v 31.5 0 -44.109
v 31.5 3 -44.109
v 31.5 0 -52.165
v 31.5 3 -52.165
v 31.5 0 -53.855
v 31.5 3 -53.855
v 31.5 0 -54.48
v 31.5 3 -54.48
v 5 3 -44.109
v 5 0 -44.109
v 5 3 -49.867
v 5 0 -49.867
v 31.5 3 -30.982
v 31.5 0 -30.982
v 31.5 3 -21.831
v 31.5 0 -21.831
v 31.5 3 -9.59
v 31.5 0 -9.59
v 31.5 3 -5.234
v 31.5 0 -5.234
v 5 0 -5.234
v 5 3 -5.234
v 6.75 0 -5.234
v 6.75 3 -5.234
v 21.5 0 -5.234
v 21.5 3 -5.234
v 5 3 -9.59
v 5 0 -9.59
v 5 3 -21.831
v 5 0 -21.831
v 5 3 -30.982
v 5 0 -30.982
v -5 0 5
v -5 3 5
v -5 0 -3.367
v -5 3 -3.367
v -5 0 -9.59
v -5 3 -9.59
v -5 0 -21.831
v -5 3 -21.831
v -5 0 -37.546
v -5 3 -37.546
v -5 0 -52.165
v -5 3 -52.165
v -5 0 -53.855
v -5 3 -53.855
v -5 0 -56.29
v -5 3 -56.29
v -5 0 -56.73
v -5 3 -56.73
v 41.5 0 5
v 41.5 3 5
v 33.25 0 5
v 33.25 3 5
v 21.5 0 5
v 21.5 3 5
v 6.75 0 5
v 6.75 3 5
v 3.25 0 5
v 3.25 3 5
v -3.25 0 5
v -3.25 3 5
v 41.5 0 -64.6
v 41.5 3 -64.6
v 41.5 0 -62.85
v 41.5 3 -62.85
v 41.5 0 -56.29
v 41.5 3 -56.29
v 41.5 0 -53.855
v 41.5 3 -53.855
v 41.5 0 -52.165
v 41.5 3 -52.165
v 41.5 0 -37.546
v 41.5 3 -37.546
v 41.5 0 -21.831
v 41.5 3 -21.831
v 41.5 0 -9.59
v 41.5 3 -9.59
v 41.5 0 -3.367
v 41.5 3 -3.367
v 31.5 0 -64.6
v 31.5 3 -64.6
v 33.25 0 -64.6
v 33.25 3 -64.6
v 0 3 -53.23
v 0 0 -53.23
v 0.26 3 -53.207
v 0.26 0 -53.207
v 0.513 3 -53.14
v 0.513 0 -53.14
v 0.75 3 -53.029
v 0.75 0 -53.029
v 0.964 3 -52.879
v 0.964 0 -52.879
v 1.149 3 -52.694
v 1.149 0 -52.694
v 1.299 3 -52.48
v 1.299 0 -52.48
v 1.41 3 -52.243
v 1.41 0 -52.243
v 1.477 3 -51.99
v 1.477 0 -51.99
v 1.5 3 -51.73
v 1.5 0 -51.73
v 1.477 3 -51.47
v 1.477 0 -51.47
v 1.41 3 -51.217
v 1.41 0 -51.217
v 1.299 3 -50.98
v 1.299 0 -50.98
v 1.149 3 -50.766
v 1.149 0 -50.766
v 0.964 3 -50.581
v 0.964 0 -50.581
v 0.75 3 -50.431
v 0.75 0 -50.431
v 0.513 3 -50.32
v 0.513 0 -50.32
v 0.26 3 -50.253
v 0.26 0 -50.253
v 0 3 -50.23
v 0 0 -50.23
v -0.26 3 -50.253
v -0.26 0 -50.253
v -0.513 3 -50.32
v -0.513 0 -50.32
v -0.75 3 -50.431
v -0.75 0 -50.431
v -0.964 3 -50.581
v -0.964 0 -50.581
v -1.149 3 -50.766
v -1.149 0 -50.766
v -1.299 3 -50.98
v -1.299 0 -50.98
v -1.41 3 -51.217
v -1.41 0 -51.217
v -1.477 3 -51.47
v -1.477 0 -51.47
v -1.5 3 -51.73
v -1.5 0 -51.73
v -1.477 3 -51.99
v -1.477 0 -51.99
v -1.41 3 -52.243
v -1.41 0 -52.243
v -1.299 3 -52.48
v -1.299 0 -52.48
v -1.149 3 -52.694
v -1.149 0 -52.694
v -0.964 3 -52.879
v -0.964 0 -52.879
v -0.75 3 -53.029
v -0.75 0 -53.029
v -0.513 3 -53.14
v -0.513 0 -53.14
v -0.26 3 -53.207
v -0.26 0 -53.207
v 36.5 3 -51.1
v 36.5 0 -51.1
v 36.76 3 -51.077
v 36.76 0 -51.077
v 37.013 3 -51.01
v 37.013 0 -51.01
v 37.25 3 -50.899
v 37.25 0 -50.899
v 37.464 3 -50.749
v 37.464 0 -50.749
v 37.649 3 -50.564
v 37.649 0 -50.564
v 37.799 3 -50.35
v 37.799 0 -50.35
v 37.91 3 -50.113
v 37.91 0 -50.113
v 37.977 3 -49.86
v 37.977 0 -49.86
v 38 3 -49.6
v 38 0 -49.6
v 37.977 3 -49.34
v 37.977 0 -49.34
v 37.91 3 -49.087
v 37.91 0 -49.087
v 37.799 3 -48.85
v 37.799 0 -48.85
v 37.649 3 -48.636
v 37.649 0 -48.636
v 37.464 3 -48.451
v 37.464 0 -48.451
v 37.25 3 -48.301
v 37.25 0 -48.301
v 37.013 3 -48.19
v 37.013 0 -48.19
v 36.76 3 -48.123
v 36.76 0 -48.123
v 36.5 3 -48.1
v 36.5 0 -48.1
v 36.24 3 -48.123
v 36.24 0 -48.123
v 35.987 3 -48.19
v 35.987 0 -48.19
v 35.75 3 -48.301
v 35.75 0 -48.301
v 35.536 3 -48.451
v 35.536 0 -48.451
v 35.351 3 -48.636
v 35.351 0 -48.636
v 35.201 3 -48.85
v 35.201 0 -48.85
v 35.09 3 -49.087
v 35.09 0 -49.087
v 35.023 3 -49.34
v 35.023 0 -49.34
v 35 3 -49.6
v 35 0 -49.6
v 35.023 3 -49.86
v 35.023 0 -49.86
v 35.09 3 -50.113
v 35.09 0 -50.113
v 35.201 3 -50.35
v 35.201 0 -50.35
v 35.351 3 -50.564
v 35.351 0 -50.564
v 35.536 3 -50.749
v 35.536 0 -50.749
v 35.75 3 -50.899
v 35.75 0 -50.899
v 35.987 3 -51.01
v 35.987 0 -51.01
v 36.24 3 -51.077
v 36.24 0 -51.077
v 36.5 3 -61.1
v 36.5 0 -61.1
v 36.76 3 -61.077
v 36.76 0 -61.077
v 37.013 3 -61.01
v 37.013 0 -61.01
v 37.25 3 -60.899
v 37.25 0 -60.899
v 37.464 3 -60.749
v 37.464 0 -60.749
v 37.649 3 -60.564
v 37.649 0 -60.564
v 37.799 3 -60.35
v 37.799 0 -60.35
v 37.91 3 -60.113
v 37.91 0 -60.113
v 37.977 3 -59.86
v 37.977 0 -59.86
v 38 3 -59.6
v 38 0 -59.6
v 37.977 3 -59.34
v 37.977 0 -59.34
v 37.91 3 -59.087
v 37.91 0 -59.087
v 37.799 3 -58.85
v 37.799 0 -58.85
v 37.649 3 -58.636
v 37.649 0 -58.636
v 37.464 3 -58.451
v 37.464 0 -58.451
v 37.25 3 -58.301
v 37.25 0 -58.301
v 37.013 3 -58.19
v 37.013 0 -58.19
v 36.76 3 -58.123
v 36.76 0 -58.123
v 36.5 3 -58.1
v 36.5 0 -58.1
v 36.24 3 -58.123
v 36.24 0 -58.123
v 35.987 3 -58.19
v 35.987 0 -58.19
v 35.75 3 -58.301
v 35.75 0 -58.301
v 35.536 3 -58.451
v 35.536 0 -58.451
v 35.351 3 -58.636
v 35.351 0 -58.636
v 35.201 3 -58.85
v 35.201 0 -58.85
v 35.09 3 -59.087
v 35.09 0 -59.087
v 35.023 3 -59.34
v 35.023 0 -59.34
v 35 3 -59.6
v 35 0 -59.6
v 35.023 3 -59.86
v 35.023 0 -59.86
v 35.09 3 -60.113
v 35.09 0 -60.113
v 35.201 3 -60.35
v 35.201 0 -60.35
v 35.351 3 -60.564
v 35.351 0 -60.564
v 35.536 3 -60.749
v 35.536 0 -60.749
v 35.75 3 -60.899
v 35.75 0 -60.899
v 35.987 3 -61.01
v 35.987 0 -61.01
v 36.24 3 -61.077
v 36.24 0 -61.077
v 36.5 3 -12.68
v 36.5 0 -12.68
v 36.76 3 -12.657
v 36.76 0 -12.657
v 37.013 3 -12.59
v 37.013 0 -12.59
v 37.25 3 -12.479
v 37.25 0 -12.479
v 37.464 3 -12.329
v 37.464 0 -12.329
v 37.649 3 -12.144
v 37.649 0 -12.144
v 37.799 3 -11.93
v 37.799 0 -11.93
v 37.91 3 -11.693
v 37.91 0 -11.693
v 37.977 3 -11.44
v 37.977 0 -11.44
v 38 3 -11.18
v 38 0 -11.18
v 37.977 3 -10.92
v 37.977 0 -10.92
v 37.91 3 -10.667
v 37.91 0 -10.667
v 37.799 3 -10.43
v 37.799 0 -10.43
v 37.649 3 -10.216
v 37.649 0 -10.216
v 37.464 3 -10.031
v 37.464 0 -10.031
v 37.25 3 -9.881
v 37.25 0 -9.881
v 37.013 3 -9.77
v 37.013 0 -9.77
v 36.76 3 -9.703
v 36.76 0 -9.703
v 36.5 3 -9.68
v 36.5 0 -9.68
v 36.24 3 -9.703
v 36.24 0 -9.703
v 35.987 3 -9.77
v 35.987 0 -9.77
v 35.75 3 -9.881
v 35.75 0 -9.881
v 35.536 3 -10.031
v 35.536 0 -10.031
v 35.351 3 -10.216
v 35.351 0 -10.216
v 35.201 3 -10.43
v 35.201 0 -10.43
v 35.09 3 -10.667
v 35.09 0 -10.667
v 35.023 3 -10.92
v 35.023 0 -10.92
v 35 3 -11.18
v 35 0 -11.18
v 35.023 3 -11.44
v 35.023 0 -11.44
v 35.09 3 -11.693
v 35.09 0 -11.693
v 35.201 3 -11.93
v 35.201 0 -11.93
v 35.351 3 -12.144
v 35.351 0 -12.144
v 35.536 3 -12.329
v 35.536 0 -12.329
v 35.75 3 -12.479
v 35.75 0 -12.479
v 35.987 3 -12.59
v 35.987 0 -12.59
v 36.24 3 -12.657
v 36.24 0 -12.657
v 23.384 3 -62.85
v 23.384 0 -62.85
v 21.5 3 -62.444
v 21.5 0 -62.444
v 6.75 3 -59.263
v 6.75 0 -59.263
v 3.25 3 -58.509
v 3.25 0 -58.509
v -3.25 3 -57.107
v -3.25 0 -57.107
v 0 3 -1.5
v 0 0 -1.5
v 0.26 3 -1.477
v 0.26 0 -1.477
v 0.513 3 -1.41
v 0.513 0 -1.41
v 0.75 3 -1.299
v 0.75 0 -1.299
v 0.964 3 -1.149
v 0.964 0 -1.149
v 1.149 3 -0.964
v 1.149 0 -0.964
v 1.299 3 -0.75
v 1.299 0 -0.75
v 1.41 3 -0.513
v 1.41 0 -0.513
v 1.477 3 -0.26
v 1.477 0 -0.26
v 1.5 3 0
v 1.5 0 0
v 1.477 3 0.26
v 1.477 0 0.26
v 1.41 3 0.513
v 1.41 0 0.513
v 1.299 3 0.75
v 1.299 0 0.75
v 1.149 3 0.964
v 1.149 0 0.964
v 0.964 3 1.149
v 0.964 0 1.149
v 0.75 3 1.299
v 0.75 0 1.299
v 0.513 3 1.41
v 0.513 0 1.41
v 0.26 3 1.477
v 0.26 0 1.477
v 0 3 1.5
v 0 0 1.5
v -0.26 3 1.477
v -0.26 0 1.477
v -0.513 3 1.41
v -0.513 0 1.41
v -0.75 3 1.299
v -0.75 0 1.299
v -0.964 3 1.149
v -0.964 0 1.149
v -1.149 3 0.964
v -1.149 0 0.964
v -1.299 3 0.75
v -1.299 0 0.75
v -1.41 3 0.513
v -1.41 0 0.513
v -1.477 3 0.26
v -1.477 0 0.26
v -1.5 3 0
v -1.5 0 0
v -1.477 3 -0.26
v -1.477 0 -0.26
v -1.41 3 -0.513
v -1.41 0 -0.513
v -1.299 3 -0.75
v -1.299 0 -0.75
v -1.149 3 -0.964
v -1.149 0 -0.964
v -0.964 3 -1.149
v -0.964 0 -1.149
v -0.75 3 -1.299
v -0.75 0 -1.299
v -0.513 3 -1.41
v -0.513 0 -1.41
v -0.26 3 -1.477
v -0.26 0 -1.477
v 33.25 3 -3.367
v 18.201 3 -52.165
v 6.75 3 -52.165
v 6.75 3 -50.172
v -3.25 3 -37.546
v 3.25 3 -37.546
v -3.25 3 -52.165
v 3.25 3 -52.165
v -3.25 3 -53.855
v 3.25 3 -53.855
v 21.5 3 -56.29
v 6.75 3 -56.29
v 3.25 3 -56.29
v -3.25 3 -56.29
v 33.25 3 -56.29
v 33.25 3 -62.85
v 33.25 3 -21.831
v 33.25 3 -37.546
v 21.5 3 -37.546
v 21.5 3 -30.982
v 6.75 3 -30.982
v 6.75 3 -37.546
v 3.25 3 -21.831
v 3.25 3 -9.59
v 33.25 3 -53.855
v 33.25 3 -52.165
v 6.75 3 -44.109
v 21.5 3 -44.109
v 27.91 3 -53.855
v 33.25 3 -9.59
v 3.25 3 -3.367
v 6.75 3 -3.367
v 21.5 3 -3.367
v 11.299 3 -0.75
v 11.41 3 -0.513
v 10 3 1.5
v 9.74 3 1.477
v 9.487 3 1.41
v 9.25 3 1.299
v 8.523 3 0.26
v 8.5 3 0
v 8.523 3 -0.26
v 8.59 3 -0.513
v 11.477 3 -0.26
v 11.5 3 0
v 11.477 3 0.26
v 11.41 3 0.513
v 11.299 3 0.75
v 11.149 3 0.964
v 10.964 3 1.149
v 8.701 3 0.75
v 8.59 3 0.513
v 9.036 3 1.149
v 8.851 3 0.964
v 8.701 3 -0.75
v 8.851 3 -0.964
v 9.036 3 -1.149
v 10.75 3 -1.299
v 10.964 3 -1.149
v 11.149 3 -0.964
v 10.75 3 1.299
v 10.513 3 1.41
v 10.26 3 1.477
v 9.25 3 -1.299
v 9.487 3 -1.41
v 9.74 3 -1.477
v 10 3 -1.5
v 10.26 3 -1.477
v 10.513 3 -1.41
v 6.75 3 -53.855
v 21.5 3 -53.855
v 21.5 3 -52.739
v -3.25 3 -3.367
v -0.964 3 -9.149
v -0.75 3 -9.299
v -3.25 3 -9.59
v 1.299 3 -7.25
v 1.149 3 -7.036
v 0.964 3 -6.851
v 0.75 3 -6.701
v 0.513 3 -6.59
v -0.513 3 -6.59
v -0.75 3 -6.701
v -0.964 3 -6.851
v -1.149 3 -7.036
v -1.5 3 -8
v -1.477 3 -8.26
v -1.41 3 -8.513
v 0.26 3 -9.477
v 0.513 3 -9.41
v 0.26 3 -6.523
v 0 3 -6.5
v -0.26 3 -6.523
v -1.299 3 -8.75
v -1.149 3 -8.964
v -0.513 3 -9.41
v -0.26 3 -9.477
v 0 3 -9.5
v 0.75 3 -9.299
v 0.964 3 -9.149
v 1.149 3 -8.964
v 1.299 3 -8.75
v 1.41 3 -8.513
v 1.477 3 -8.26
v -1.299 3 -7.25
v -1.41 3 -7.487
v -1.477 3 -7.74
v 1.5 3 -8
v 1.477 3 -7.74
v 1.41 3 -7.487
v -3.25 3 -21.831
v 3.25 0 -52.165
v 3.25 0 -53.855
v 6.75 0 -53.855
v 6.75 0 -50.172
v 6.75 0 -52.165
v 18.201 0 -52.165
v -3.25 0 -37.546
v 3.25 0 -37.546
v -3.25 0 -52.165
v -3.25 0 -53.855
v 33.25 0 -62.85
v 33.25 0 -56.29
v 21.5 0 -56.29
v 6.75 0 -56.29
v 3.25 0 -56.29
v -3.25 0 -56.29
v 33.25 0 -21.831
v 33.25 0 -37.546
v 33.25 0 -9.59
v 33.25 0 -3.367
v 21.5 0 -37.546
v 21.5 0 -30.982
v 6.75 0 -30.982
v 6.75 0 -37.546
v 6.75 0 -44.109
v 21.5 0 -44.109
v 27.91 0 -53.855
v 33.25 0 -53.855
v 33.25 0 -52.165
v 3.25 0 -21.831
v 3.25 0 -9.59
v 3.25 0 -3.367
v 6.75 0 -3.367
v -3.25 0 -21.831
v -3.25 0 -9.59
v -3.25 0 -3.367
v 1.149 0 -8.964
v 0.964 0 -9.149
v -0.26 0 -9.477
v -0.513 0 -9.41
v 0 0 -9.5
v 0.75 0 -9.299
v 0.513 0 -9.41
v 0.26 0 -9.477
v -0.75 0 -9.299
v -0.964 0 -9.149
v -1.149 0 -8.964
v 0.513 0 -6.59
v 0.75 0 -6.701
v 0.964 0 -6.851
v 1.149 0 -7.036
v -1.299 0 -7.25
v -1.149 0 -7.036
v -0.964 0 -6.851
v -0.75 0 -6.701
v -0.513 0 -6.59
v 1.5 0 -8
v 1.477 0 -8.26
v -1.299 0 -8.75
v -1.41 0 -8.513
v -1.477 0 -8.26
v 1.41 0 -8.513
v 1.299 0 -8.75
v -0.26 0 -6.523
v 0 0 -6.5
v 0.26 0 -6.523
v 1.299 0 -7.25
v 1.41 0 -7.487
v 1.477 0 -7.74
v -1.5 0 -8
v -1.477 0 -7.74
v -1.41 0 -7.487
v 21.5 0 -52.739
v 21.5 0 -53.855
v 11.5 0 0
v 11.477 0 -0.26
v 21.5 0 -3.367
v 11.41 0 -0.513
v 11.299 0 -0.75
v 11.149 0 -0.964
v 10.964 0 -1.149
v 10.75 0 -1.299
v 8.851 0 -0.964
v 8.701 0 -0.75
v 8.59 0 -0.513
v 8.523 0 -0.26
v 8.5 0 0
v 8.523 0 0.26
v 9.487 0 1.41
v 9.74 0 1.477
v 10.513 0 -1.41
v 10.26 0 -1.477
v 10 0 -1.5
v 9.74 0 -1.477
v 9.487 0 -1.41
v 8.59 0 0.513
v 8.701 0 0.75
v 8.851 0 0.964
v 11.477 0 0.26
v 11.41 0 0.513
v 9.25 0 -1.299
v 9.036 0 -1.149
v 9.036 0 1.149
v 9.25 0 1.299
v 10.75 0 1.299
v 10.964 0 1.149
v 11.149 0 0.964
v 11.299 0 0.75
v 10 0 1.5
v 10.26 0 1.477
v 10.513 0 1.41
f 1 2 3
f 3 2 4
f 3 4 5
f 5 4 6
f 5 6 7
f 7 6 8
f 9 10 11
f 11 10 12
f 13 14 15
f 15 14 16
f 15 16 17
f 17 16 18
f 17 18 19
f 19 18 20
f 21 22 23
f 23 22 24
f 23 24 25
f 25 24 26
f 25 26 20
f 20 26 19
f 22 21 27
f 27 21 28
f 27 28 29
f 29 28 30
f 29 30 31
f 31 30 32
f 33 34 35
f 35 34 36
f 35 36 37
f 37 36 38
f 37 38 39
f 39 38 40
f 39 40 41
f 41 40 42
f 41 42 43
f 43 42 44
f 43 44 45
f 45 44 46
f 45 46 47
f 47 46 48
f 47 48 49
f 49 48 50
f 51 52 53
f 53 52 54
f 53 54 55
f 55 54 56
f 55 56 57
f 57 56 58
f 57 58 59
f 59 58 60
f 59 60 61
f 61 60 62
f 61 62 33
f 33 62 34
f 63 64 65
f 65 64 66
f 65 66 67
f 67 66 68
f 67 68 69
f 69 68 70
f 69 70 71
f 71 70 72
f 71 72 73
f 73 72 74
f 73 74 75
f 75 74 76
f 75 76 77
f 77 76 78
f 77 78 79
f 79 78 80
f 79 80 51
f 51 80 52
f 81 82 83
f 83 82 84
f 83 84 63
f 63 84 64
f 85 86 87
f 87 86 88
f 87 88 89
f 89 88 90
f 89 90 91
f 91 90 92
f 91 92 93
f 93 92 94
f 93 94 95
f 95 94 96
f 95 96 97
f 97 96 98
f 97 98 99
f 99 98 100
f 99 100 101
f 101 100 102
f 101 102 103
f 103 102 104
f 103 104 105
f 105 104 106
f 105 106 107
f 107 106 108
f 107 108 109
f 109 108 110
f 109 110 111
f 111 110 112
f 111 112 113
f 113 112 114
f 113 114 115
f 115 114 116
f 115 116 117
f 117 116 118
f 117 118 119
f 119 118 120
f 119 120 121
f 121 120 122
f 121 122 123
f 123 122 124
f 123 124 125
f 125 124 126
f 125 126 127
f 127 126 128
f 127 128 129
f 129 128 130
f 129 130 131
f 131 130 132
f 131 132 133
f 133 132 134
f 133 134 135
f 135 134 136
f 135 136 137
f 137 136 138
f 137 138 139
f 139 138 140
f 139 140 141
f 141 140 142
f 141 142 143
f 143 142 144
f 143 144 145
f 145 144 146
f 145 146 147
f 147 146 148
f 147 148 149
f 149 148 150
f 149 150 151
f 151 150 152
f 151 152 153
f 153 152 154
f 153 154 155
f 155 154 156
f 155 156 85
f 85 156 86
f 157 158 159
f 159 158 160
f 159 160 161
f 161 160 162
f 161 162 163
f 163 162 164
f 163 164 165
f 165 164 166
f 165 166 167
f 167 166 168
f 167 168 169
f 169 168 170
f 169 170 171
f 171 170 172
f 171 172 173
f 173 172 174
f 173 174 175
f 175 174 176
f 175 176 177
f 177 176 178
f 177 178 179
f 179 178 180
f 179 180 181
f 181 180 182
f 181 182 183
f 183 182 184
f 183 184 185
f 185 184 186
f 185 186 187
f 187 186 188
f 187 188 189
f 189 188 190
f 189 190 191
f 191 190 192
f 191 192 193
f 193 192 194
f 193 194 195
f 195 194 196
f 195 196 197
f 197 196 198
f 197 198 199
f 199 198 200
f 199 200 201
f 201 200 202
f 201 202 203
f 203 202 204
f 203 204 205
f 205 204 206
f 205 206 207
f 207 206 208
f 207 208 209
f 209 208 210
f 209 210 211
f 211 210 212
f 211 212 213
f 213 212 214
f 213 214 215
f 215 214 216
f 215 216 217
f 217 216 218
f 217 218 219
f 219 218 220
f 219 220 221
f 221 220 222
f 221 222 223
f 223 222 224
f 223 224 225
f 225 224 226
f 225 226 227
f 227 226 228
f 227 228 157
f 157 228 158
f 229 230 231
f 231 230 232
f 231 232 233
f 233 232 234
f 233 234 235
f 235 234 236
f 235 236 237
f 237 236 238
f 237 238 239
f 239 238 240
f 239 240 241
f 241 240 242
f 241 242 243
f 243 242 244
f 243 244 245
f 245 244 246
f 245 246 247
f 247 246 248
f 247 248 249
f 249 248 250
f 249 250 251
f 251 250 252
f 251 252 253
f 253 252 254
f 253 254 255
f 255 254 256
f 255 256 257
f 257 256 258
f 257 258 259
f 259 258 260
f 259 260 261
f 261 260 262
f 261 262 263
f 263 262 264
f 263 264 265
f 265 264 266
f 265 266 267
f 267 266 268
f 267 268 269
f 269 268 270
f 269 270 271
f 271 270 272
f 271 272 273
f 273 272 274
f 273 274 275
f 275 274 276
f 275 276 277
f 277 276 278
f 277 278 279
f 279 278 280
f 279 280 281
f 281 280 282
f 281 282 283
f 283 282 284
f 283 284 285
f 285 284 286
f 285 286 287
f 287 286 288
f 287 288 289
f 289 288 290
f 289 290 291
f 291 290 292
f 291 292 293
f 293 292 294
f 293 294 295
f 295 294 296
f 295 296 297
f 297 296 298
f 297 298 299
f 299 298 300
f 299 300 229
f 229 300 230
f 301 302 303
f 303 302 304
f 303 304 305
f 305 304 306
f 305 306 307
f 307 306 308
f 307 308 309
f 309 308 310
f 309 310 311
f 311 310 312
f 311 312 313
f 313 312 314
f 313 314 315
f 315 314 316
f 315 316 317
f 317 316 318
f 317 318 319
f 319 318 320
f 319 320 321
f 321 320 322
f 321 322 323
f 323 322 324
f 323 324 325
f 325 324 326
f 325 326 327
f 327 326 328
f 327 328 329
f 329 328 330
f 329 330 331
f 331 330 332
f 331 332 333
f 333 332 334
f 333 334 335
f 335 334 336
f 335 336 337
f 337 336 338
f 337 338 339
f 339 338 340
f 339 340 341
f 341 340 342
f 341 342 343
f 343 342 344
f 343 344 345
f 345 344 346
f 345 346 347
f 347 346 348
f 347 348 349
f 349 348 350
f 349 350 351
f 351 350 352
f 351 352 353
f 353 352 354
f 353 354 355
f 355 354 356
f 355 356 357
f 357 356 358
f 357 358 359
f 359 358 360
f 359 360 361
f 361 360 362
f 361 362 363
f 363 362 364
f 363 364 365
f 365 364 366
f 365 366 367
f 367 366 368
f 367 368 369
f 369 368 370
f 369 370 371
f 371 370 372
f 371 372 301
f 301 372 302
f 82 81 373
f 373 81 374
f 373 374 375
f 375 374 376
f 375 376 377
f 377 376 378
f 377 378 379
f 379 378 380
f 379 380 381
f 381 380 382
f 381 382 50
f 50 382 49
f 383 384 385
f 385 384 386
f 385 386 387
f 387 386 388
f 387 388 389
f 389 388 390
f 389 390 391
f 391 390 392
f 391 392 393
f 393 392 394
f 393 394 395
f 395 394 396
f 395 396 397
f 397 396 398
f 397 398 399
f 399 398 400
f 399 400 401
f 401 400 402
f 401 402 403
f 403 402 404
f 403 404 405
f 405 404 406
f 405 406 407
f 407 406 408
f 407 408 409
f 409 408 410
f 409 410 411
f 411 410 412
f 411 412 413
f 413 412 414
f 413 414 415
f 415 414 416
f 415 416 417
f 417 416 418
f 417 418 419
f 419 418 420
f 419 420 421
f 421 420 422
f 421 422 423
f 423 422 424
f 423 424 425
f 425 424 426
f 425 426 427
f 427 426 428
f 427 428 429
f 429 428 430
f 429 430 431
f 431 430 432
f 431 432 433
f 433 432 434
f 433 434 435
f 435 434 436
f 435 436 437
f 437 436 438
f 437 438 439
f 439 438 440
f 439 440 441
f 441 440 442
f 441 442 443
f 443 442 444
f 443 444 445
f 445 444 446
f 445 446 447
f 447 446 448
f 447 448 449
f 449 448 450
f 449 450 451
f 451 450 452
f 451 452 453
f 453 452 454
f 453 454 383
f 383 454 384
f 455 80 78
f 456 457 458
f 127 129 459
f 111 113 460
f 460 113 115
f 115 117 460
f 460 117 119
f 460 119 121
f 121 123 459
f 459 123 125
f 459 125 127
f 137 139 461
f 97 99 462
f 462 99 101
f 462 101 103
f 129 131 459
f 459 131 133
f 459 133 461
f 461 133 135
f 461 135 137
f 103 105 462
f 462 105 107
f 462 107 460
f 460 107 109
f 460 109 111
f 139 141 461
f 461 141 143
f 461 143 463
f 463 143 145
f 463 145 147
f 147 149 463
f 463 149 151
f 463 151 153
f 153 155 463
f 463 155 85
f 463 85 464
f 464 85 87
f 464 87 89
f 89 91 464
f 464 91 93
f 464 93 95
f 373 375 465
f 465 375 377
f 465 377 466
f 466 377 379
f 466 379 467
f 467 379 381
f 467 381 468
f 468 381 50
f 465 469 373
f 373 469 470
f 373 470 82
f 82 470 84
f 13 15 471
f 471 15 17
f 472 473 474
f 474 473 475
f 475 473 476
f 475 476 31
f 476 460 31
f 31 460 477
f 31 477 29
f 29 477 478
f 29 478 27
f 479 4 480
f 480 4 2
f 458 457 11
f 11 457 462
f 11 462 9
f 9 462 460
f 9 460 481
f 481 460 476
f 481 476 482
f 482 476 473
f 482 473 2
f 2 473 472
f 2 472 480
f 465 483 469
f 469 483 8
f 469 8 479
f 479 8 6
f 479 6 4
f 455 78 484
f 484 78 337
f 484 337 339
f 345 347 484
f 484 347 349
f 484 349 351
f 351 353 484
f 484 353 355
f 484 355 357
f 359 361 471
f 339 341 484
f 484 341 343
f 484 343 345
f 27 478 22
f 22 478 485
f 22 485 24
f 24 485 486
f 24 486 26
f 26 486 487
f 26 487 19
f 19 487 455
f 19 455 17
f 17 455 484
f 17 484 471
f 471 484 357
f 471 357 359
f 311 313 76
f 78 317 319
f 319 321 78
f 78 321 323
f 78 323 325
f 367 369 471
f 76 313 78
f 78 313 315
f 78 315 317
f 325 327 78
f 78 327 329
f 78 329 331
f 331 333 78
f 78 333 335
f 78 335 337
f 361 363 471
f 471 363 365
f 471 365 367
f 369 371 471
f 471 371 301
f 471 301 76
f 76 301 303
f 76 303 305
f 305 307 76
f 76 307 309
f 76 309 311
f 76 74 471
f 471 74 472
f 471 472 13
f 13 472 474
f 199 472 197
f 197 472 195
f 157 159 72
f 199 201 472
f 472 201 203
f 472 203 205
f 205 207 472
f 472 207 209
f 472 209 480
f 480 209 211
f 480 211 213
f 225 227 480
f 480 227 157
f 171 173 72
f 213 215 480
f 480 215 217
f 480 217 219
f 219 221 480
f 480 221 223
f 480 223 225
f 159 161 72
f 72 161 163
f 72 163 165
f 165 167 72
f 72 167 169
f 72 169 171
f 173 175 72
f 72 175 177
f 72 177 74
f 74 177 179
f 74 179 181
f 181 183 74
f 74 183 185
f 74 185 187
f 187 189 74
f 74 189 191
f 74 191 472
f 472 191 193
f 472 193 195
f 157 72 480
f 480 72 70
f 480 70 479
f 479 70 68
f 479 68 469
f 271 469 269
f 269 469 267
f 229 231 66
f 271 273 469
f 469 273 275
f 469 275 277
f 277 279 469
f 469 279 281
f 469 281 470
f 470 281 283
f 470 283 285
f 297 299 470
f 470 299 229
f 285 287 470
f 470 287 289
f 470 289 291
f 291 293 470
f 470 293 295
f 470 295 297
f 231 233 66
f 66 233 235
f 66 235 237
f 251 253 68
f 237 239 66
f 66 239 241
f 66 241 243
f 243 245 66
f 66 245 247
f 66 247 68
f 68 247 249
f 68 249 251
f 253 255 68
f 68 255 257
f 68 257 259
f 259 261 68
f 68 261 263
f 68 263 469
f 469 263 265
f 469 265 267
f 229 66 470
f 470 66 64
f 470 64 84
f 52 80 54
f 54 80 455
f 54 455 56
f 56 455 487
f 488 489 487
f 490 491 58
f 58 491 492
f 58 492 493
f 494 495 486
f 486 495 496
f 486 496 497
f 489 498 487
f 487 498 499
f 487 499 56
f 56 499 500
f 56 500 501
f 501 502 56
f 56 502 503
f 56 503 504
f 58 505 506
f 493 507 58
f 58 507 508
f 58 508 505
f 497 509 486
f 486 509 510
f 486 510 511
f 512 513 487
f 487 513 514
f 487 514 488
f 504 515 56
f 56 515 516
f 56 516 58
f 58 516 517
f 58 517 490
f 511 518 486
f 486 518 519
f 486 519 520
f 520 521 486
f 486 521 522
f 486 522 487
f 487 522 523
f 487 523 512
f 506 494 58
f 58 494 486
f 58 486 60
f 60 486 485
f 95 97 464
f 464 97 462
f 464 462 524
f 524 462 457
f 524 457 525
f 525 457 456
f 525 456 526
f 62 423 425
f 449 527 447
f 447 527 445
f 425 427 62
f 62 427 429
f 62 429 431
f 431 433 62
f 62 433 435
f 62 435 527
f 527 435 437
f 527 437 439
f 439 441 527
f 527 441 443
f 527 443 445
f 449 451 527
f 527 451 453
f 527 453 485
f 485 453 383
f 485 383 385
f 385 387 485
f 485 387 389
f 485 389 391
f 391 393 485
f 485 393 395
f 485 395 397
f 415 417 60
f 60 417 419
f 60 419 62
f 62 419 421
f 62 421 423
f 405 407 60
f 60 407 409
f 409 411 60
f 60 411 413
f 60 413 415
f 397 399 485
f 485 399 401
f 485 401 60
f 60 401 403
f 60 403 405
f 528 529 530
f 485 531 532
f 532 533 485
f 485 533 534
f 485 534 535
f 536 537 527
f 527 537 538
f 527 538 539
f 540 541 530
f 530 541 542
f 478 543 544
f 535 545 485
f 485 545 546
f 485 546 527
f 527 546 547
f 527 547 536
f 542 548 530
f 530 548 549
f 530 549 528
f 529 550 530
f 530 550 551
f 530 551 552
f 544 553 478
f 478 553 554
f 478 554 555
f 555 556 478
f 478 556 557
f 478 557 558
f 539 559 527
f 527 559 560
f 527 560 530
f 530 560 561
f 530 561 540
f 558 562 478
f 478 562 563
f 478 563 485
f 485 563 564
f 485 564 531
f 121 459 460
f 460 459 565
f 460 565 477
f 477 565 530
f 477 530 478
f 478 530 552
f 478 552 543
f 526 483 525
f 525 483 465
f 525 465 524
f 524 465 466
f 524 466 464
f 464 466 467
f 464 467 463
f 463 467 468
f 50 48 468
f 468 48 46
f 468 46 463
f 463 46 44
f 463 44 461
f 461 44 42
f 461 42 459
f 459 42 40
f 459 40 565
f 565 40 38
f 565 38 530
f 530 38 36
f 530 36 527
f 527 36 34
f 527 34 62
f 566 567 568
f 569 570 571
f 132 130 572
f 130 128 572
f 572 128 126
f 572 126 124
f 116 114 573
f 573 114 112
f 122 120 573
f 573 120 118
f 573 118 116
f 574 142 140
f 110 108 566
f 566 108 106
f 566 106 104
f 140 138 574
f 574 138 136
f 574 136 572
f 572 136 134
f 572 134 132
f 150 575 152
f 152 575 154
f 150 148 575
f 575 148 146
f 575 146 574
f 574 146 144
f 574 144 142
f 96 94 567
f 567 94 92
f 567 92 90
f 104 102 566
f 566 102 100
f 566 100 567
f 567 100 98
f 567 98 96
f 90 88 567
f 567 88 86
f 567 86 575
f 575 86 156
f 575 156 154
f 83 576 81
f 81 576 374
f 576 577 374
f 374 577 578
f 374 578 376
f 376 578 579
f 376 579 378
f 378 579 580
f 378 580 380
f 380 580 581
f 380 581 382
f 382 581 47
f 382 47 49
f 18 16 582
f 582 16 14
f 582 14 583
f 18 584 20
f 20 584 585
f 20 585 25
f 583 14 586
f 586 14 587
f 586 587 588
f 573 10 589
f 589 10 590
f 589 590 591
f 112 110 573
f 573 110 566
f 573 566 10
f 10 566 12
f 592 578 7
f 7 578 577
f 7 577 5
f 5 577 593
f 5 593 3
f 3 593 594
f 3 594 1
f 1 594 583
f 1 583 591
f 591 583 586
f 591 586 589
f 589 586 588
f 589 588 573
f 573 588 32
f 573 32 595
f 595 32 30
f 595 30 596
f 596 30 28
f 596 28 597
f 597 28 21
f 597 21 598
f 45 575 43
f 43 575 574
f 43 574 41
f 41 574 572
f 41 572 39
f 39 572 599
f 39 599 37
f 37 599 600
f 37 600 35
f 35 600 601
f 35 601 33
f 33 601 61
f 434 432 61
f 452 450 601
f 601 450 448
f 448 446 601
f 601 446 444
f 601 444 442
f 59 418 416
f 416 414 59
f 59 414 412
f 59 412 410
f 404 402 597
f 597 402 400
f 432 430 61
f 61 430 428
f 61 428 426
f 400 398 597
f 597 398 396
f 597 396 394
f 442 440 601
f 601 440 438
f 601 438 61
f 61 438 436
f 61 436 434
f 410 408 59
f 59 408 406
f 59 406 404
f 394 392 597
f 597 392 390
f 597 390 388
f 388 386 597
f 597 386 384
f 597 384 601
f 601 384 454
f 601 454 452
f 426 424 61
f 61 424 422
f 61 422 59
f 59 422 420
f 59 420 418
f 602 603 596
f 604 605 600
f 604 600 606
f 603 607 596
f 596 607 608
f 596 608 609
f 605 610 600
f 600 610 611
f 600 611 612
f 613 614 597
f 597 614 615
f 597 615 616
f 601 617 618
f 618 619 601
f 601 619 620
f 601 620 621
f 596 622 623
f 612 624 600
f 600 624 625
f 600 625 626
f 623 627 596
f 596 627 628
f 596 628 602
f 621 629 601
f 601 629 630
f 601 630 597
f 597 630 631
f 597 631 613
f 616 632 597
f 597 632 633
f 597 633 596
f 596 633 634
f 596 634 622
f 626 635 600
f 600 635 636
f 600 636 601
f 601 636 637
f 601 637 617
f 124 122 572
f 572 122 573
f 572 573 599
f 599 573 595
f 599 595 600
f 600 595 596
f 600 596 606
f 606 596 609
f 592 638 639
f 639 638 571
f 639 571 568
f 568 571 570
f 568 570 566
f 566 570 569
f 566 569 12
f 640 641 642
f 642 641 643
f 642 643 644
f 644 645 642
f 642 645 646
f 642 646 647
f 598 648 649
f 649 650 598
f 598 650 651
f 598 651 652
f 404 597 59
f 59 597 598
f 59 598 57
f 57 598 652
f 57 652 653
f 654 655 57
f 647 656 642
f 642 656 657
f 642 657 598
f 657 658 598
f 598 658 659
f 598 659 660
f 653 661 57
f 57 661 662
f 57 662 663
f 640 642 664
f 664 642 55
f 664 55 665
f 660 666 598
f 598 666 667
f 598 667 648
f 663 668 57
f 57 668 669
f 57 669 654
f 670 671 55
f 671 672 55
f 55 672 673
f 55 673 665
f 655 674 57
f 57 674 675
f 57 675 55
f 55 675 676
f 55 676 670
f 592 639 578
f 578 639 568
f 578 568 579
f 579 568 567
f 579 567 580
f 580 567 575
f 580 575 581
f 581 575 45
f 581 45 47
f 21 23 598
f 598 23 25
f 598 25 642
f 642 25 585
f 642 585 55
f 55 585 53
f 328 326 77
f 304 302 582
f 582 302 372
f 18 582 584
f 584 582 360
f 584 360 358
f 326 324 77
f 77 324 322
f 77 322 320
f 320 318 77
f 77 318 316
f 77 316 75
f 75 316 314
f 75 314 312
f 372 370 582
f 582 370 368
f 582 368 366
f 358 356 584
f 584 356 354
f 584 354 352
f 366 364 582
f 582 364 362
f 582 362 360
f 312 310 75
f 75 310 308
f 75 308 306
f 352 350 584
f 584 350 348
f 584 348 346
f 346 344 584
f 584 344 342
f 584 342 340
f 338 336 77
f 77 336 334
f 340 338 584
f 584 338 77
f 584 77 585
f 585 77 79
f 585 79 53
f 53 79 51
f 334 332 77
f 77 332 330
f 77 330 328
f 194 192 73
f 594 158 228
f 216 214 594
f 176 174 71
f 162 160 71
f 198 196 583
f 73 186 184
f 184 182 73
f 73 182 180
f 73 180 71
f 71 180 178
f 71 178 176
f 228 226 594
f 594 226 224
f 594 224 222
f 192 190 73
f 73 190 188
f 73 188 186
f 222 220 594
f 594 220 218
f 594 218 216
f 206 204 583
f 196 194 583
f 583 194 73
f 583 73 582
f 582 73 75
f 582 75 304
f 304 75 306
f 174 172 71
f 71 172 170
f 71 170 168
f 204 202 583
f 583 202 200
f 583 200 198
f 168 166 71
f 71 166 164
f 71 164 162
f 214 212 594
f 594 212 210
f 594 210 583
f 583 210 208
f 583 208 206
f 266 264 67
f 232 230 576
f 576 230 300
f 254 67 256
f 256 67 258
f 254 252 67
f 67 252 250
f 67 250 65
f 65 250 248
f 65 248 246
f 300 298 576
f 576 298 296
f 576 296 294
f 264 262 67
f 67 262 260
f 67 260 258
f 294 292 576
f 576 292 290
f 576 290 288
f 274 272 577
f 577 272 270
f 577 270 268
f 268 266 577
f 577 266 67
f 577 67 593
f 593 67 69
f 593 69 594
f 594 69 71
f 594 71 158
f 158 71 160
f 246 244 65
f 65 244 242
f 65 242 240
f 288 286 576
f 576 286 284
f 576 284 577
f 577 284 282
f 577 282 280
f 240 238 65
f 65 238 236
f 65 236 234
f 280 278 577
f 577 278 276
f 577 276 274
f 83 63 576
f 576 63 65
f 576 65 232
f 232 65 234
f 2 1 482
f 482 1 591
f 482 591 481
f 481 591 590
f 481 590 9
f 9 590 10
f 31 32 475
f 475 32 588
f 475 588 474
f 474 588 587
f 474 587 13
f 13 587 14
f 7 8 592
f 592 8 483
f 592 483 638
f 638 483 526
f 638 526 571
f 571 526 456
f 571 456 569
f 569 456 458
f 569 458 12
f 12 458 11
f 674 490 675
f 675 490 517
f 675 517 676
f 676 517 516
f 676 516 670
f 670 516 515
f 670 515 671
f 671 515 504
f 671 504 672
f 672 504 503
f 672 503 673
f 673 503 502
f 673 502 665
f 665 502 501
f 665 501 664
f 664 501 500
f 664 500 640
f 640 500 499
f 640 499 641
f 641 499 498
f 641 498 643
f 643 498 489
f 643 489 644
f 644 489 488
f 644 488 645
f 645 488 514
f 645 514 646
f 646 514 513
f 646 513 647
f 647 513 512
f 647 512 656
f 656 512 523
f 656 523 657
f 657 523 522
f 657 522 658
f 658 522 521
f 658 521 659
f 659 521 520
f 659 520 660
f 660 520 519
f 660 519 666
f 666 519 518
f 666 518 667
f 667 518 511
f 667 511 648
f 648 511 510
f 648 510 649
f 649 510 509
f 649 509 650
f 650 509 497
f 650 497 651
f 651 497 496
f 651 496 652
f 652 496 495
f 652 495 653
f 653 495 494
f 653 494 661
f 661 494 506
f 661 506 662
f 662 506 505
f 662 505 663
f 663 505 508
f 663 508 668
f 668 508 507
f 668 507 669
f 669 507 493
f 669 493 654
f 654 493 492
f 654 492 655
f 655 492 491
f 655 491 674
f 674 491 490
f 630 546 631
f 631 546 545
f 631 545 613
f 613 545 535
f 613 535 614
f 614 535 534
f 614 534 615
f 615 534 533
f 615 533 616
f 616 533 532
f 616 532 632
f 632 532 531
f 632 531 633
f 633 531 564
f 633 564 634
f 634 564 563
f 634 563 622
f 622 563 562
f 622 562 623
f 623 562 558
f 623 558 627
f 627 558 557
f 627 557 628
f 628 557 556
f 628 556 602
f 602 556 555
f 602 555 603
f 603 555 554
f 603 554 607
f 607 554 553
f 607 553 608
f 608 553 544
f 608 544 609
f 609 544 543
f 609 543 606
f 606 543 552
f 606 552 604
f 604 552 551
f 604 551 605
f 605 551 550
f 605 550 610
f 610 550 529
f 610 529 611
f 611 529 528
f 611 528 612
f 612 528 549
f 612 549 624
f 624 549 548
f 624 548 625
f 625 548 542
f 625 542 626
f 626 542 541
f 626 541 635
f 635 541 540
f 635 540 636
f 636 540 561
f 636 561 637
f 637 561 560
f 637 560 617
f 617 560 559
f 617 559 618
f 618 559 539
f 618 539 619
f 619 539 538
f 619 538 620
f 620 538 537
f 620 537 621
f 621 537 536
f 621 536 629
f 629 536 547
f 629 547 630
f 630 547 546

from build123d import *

# Parameters (mm, degrees)
SKETCH1_R           = 1.5
BOSS_EXTRUDE1_DEPTH = 3
SKETCH2_W           = 26.5
SKETCH2_H           = 13.12704922
BOSS_EXTRUDE2_DEPTH = 3
SKETCH3_R           = 1.5
CUT_EXTRUDE1_DEPTH  = 10
SKETCH4_R           = 1.5
CUT_EXTRUDE2_DEPTH  = 10


with BuildPart() as part:
    # Sketch1 → Boss-Extrude1 (new body)
    with BuildSketch(Plane(origin=(0, 0, 0), x_dir=(1, 0, 0), z_dir=(0, 1, 0))):
        Polygon((-5, -5), (41.5, -5), (41.5, 64.6), (31.5, 64.6), (-5, 56.73), align=None)
        Polygon((31.5, 54.48), (31.5, 5.234024539), (5, 5.234024539), (5, 56.73), align=None, mode=Mode.SUBTRACT)
        Circle(SKETCH1_R, mode=Mode.SUBTRACT)
        with Locations((0, 51.73)):
            Circle(SKETCH1_R, mode=Mode.SUBTRACT)
        with Locations((36.5, 59.6)):
            Circle(SKETCH1_R, mode=Mode.SUBTRACT)
        with Locations((36.5, 11.18)):
            Circle(SKETCH1_R, mode=Mode.SUBTRACT)
        with Locations((36.5, 49.6)):
            Circle(SKETCH1_R, mode=Mode.SUBTRACT)
    extrude(amount=BOSS_EXTRUDE1_DEPTH)

    # Sketch2 → Boss-Extrude2 (add)
    with BuildSketch(Plane(origin=(0, 3, 0), x_dir=(1, 0, 0), z_dir=(0, 1, 0))):
        with Locations((18.25, 37.545536879)):
            Rectangle(SKETCH2_W, SKETCH2_H)
        Polygon((5, 56.73), (5, 49.867078553), (31.5, 54.48), align=None)
    extrude(amount=-BOSS_EXTRUDE2_DEPTH)

    # Sketch3 → Cut-Extrude1 (cut)
    with BuildSketch(Plane(origin=(0, 3, 0), x_dir=(1, 0, 0), z_dir=(0, 1, 0))):
        with Locations((10, 0)):
            Circle(SKETCH3_R)
    extrude(amount=-CUT_EXTRUDE1_DEPTH, mode=Mode.SUBTRACT)

    # Sketch4 → Cut-Extrude2 (cut)
    with BuildSketch(Plane(origin=(0, 3, 0), x_dir=(1, 0, 0), z_dir=(0, 1, 0))):
        with Locations((0, 8)):
            Circle(SKETCH4_R)
    extrude(amount=-CUT_EXTRUDE2_DEPTH, mode=Mode.SUBTRACT)


solid = part.part
